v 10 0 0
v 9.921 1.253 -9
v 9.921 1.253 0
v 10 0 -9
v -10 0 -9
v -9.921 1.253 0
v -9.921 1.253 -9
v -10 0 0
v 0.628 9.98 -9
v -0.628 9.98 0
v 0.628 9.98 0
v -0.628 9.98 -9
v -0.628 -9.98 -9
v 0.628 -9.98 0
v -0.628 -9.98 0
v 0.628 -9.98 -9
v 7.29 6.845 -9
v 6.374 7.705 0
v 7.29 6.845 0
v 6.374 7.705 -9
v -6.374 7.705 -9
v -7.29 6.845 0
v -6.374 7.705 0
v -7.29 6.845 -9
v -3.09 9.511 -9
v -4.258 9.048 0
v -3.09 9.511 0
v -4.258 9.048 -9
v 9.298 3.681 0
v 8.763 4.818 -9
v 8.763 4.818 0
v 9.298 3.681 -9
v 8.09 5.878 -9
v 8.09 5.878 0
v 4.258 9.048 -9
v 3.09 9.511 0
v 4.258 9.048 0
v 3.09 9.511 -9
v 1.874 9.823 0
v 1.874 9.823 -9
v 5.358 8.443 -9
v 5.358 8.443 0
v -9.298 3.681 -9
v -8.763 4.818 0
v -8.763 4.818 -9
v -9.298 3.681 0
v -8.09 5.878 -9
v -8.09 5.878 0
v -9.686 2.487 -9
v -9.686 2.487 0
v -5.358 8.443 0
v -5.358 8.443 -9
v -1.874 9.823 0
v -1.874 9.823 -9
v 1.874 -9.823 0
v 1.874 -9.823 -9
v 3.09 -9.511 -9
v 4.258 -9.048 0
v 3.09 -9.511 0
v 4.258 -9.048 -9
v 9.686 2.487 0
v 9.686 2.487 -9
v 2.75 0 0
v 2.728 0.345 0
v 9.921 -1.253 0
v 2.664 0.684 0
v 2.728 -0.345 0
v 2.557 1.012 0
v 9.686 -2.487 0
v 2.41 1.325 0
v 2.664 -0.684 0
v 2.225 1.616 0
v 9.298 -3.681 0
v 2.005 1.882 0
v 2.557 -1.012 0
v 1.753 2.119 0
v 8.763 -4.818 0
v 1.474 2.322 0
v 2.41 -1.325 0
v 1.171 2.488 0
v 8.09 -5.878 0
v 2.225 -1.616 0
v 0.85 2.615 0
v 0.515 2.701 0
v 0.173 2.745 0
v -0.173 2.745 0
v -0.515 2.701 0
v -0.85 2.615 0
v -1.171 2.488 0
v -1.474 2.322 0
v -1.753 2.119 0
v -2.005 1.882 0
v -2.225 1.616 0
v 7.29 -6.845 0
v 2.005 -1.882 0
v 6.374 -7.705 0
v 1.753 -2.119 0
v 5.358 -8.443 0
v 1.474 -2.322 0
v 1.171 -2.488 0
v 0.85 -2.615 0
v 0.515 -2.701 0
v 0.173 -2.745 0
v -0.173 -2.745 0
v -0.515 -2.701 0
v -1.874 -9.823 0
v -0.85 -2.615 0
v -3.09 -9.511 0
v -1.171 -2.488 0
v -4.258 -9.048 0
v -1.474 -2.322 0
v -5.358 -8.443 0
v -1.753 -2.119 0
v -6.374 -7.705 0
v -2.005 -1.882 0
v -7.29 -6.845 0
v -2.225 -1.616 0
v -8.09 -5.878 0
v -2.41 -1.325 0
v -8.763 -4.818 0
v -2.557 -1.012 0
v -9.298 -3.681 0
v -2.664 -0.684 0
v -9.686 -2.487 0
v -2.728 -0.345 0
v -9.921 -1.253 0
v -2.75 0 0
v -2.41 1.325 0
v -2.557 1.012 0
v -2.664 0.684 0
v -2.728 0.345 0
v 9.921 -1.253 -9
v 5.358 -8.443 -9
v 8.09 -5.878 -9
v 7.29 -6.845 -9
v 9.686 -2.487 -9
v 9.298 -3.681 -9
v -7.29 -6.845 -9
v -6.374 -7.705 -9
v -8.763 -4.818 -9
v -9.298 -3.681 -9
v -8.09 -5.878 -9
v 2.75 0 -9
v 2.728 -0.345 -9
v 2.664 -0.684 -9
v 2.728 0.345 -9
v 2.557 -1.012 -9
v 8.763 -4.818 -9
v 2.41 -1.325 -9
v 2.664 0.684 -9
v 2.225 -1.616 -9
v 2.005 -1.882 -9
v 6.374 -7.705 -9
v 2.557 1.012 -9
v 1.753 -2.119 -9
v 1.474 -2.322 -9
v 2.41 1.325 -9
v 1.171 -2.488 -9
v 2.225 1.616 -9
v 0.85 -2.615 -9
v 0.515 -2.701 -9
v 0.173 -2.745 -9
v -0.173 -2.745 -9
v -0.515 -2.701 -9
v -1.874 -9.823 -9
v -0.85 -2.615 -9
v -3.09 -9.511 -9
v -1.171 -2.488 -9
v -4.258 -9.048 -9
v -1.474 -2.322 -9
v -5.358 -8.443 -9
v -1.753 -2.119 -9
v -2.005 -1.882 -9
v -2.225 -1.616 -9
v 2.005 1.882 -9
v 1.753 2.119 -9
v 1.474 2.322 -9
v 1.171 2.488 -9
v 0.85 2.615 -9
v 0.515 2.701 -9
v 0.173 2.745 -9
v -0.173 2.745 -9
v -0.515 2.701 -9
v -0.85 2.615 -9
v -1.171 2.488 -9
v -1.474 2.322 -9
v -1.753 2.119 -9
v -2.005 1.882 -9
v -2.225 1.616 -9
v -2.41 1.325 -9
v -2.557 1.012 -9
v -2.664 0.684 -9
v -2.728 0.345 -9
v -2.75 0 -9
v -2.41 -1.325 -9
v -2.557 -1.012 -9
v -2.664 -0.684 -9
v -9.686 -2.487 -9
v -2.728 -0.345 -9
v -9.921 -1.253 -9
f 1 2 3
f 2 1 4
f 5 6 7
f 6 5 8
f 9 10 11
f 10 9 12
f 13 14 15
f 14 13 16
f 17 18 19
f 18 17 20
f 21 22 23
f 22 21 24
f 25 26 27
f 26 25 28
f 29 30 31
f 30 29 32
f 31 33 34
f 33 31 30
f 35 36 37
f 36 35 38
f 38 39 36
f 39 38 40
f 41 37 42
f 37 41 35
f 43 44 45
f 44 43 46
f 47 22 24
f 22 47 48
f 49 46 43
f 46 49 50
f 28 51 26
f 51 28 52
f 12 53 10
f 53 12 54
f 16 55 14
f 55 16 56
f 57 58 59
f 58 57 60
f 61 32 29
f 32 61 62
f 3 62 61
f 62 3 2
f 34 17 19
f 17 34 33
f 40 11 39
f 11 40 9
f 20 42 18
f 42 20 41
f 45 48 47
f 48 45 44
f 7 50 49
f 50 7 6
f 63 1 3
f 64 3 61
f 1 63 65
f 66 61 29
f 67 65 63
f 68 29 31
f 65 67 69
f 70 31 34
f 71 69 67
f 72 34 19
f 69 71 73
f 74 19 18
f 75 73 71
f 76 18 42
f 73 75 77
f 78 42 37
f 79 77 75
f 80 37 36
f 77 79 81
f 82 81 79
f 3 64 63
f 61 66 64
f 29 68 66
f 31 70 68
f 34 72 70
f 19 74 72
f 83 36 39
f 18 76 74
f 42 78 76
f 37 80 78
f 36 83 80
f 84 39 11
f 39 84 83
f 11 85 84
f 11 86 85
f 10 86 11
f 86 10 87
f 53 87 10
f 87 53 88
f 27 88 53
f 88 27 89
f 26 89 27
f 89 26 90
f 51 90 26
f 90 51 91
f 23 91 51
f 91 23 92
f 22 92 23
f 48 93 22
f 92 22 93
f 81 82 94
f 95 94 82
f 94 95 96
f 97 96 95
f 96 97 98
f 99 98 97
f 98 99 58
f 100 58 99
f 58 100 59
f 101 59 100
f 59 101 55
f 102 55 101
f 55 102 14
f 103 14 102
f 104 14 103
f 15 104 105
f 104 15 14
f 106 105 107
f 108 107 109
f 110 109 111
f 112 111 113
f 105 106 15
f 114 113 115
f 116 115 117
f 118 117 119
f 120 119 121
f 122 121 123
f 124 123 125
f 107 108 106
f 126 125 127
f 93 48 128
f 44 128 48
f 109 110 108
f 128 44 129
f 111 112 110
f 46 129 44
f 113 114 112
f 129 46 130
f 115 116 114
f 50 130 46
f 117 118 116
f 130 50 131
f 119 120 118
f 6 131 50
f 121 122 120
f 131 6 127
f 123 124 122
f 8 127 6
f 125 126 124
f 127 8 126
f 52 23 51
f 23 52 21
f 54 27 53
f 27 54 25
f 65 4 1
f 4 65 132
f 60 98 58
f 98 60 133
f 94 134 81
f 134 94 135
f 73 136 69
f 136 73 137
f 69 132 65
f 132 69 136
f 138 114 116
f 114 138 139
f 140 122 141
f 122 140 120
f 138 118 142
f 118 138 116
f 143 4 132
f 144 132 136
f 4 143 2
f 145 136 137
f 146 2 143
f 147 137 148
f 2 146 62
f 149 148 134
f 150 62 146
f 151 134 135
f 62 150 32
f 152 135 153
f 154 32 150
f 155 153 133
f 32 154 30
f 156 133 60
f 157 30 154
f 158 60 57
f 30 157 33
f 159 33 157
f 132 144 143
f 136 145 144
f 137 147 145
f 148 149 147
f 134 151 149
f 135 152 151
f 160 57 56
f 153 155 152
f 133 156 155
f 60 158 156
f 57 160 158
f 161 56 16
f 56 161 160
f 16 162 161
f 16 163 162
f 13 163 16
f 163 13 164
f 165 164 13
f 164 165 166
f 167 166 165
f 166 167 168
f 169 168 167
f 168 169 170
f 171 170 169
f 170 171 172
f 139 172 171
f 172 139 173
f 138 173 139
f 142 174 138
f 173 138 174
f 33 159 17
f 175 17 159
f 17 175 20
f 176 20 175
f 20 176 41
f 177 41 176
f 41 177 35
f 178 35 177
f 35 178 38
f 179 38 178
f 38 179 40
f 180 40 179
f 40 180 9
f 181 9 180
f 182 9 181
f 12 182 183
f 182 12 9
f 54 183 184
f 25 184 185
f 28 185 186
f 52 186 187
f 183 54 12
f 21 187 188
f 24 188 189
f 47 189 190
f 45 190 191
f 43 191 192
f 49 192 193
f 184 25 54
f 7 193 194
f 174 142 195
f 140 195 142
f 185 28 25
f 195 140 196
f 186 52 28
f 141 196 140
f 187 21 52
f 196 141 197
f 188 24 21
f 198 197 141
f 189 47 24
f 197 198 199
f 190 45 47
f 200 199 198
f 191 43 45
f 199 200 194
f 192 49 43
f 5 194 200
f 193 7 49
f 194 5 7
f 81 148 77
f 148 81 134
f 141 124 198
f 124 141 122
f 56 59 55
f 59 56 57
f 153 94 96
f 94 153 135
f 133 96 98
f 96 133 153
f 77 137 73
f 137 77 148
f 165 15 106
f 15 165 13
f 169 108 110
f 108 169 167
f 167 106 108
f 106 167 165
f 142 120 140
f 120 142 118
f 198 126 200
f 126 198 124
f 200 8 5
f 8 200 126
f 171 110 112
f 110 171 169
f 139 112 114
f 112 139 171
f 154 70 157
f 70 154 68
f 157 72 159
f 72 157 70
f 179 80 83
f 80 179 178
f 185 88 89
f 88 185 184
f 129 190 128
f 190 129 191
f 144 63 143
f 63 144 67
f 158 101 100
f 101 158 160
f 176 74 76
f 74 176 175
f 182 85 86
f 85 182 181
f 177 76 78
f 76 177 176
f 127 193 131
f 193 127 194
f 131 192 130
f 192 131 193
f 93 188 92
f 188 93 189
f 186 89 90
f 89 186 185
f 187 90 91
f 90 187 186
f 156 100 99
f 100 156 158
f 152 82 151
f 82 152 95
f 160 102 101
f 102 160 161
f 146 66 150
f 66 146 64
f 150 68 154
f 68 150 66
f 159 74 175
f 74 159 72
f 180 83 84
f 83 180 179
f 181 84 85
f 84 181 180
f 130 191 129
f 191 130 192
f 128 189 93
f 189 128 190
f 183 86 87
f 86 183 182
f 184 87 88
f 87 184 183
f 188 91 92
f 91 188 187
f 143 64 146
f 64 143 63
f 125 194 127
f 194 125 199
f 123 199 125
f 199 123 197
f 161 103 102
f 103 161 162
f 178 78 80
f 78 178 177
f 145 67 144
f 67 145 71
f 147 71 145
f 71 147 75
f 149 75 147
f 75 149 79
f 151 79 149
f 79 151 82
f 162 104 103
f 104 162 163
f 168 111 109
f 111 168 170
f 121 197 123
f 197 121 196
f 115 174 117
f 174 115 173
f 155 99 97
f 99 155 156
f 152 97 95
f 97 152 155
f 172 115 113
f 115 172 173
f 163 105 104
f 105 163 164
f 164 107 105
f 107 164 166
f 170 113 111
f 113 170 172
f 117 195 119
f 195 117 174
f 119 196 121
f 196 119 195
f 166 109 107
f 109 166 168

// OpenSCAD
$fn = 50;


difference() {
	union() {
		translate(v = [0, 0, -9.0000000000]) {
			cylinder(h = 9, r = 10.0000000000);
		}
	}
	union() {
		#translate(v = [0, 0, -9]) {
			cylinder(h = 9, r = 2.7500000000);
		}
	}
}
